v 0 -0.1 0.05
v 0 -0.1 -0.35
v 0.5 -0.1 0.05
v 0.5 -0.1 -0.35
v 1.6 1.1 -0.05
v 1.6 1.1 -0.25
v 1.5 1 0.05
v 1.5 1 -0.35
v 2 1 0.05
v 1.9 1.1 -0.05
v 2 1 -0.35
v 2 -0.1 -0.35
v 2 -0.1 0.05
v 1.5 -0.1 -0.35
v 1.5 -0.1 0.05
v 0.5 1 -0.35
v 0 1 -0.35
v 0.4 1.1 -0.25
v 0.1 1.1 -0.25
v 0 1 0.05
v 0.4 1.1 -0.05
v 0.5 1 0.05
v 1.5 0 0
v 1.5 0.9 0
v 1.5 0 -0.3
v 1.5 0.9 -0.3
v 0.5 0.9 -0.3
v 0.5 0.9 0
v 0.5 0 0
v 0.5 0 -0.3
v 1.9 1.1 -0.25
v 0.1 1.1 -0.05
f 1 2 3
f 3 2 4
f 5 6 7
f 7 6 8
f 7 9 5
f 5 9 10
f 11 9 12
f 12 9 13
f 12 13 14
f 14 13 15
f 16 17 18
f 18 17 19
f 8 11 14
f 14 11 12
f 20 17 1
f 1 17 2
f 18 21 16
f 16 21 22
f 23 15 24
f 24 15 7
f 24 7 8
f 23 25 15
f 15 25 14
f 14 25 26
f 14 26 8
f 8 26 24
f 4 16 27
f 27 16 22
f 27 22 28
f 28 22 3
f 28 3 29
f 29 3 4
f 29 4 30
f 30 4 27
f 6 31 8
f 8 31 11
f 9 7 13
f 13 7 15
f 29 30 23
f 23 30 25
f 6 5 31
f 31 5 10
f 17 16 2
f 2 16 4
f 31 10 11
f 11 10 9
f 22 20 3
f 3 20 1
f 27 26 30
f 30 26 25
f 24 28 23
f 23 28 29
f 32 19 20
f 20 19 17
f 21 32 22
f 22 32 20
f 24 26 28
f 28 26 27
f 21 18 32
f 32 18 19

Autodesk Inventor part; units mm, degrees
ref_plane "YZ Plane" through (0, 0, 0) normal (1, 0, 0) x (0, 1, 0)
sketch "Sketch1" plane through (0, 0, 0) normal (0, 1, 0) x (-1, 0, 0)
  line L0 (0, 0) -> (-2, 0)
  line L1 (-2, 0) -> (-2, -0.3)
  line L2 (-2, -0.3) -> (0, -0.3)
  line L3 (0, -0.3) -> (0, 0)
  dimension "d0" = 2
  dimension "d3" = 0.3
extrude "Extrusion1" add sketch "Sketch1" along normal blind 1
ref_plane "Work Plane1" through (0, 0.5, 0) normal (0, 1, 0) x (1, 0, 0)
sketch "Sketch3" plane through (0, 0.5, 0) normal (0, 1, 0) x (1, 0, 0)
  line L0 (2, 0.3) -> (0, 0.3) projected
  line L1 (0, 0) -> (2, 0) projected
  line L2 (0, 0.3) -> (0.5, 0.3)
  line L3 (0.5, 0.3) -> (0.5, 0)
  line L4 (0.5, 0) -> (0, 0)
  line L5 (0, 0) -> (0, 0.3)
  line L6 (2, 0) -> (2, 0.3) projected
  line L7 (2, 0.3) -> (1.5, 0.3)
  line L8 (1.5, 0.3) -> (1.5, 0)
  line L9 (1.5, 0) -> (2, 0)
  line L10 (2, 0) -> (2, 0.3)
  dimension "d7" = 0.5
  dimension "d8" = 0.5
extrude "Extrusion2" add sketch "Sketch3" along normal mid plane 1.2 contours L6 L1 L8 L0 | L3 L1 L5 L0
ref_plane "Work Plane2" through (0.5, 0, -0.15) normal (0, 0, 1) x (1, 0, 0)
sketch "Sketch4" plane through (0.5, 0, -0.15) normal (0, 0, 1) x (1, 0, 0)
  line L0 (-0.5, -0.1) -> (-0.5, 1.1) projected
  line L1 (0, -0.1) -> (0, 0) projected
  line L2 (-0.5, 1.1) -> (0, 1.1)
  line L3 (0, 1.1) -> (0, -0.1)
  line L4 (0, -0.1) -> (-0.5, -0.1)
  line L5 (-0.5, -0.1) -> (-0.5, 1.1)
  line L6 (1.5, -0.1) -> (1, -0.1) projected
  line L7 (1.5, -0.1) -> (1.5, 1.1) projected
  line L8 (1, -0.1) -> (1.5, -0.1)
  line L9 (1.5, -0.1) -> (1.5, 1.1)
  line L10 (1.5, 1.1) -> (1, 1.1)
  line L11 (1, 1.1) -> (1, -0.1)
  point P0 (-0.5, 0)
extrude "Extrusion3" add sketch "Sketch4" along normal mid plane 0.4
chamfer "Chamfer1" distance 0.1 angle 45 4 edges at (0.25, 1.1, 0.05) (0.25, 1.1, -0.35) (1.75, 1.1, 0.05) (1.75, 1.1, -0.35)
chamfer "Chamfer2" distance 0.1 angle 45 2 edges at (0, 1.1, -0.15) (2, 1.1, -0.15)
chamfer "Chamfer3" distance 0.1 angle 45 2 edges at (0.5, 1.1, -0.15) (1.5, 1.1, -0.15)
sketch "Sketch5" plane through (0, 1, 0) normal (0, 1, 0) x (1, 0, 0)
  line L0 (0.5, -0.05) -> (0.5, 0) projected
  line L1 (1.5, 0.3) -> (0.5, 0.3) projected
  line L2 (0.5, 0) -> (1.5, 0)
  line L3 (1.5, 0) -> (1.5, 0.3)
  line L4 (1.5, 0.3) -> (0.5, 0.3)
  line L5 (0.5, 0.3) -> (0.5, 0)
  point P0 (0, 0)
extrude "Extrusion4" cut sketch "Sketch5" against normal blind 0.1
properties part number "Wall"
